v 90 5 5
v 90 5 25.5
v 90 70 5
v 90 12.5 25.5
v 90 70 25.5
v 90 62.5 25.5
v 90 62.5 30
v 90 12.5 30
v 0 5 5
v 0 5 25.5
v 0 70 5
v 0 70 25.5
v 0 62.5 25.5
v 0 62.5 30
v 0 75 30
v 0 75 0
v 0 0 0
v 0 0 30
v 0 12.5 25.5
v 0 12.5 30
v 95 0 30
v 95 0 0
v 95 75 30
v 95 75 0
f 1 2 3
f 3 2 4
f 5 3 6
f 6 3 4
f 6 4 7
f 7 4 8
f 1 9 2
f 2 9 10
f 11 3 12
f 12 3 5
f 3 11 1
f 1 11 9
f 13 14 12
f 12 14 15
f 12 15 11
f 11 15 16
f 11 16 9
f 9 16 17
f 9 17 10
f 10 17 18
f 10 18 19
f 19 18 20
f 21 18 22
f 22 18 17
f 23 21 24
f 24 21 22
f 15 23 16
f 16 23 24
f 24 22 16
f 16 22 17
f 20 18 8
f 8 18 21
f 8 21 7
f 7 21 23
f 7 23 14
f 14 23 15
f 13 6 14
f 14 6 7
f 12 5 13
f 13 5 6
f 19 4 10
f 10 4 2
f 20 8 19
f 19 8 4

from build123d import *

# Parameters (mm, degrees)
ESQUISSE1_W        = 95
ESQUISSE1_H        = 75
BOSS_EXTRU_1_DEPTH = 5
BOSS_EXTRU_2_DEPTH = 25
ESQUISSE3_W        = 4.5
ESQUISSE3_H        = 7.5
BOSS_EXTRU_3_DEPTH = 90


with BuildPart() as part:
    # Esquisse1 → Boss.-Extru.1 (new body)
    with BuildSketch(Plane.XY):
        with Locations((47.5, 37.5)):
            Rectangle(ESQUISSE1_W, ESQUISSE1_H)
    extrude(amount=BOSS_EXTRU_1_DEPTH)

    # Esquisse2 → Boss.-Extru.2 (add)
    with BuildSketch(Plane.XY.offset(5)):
        Polygon((0, 70), (0, 75), (95, 75), (95, 0), (0, 0), (0, 5), (90, 5), (90, 70), align=None)
    extrude(amount=BOSS_EXTRU_2_DEPTH)

    # Esquisse3 → Boss.-Extru.3 (add)
    with BuildSketch(Plane.ZY.offset(-90)):
        with Locations((27.75, 66.25)):
            Rectangle(ESQUISSE3_W, ESQUISSE3_H)
        with Locations((27.75, 8.75)):
            Rectangle(ESQUISSE3_W, ESQUISSE3_H)
    extrude(amount=BOSS_EXTRU_3_DEPTH)


solid = part.part
